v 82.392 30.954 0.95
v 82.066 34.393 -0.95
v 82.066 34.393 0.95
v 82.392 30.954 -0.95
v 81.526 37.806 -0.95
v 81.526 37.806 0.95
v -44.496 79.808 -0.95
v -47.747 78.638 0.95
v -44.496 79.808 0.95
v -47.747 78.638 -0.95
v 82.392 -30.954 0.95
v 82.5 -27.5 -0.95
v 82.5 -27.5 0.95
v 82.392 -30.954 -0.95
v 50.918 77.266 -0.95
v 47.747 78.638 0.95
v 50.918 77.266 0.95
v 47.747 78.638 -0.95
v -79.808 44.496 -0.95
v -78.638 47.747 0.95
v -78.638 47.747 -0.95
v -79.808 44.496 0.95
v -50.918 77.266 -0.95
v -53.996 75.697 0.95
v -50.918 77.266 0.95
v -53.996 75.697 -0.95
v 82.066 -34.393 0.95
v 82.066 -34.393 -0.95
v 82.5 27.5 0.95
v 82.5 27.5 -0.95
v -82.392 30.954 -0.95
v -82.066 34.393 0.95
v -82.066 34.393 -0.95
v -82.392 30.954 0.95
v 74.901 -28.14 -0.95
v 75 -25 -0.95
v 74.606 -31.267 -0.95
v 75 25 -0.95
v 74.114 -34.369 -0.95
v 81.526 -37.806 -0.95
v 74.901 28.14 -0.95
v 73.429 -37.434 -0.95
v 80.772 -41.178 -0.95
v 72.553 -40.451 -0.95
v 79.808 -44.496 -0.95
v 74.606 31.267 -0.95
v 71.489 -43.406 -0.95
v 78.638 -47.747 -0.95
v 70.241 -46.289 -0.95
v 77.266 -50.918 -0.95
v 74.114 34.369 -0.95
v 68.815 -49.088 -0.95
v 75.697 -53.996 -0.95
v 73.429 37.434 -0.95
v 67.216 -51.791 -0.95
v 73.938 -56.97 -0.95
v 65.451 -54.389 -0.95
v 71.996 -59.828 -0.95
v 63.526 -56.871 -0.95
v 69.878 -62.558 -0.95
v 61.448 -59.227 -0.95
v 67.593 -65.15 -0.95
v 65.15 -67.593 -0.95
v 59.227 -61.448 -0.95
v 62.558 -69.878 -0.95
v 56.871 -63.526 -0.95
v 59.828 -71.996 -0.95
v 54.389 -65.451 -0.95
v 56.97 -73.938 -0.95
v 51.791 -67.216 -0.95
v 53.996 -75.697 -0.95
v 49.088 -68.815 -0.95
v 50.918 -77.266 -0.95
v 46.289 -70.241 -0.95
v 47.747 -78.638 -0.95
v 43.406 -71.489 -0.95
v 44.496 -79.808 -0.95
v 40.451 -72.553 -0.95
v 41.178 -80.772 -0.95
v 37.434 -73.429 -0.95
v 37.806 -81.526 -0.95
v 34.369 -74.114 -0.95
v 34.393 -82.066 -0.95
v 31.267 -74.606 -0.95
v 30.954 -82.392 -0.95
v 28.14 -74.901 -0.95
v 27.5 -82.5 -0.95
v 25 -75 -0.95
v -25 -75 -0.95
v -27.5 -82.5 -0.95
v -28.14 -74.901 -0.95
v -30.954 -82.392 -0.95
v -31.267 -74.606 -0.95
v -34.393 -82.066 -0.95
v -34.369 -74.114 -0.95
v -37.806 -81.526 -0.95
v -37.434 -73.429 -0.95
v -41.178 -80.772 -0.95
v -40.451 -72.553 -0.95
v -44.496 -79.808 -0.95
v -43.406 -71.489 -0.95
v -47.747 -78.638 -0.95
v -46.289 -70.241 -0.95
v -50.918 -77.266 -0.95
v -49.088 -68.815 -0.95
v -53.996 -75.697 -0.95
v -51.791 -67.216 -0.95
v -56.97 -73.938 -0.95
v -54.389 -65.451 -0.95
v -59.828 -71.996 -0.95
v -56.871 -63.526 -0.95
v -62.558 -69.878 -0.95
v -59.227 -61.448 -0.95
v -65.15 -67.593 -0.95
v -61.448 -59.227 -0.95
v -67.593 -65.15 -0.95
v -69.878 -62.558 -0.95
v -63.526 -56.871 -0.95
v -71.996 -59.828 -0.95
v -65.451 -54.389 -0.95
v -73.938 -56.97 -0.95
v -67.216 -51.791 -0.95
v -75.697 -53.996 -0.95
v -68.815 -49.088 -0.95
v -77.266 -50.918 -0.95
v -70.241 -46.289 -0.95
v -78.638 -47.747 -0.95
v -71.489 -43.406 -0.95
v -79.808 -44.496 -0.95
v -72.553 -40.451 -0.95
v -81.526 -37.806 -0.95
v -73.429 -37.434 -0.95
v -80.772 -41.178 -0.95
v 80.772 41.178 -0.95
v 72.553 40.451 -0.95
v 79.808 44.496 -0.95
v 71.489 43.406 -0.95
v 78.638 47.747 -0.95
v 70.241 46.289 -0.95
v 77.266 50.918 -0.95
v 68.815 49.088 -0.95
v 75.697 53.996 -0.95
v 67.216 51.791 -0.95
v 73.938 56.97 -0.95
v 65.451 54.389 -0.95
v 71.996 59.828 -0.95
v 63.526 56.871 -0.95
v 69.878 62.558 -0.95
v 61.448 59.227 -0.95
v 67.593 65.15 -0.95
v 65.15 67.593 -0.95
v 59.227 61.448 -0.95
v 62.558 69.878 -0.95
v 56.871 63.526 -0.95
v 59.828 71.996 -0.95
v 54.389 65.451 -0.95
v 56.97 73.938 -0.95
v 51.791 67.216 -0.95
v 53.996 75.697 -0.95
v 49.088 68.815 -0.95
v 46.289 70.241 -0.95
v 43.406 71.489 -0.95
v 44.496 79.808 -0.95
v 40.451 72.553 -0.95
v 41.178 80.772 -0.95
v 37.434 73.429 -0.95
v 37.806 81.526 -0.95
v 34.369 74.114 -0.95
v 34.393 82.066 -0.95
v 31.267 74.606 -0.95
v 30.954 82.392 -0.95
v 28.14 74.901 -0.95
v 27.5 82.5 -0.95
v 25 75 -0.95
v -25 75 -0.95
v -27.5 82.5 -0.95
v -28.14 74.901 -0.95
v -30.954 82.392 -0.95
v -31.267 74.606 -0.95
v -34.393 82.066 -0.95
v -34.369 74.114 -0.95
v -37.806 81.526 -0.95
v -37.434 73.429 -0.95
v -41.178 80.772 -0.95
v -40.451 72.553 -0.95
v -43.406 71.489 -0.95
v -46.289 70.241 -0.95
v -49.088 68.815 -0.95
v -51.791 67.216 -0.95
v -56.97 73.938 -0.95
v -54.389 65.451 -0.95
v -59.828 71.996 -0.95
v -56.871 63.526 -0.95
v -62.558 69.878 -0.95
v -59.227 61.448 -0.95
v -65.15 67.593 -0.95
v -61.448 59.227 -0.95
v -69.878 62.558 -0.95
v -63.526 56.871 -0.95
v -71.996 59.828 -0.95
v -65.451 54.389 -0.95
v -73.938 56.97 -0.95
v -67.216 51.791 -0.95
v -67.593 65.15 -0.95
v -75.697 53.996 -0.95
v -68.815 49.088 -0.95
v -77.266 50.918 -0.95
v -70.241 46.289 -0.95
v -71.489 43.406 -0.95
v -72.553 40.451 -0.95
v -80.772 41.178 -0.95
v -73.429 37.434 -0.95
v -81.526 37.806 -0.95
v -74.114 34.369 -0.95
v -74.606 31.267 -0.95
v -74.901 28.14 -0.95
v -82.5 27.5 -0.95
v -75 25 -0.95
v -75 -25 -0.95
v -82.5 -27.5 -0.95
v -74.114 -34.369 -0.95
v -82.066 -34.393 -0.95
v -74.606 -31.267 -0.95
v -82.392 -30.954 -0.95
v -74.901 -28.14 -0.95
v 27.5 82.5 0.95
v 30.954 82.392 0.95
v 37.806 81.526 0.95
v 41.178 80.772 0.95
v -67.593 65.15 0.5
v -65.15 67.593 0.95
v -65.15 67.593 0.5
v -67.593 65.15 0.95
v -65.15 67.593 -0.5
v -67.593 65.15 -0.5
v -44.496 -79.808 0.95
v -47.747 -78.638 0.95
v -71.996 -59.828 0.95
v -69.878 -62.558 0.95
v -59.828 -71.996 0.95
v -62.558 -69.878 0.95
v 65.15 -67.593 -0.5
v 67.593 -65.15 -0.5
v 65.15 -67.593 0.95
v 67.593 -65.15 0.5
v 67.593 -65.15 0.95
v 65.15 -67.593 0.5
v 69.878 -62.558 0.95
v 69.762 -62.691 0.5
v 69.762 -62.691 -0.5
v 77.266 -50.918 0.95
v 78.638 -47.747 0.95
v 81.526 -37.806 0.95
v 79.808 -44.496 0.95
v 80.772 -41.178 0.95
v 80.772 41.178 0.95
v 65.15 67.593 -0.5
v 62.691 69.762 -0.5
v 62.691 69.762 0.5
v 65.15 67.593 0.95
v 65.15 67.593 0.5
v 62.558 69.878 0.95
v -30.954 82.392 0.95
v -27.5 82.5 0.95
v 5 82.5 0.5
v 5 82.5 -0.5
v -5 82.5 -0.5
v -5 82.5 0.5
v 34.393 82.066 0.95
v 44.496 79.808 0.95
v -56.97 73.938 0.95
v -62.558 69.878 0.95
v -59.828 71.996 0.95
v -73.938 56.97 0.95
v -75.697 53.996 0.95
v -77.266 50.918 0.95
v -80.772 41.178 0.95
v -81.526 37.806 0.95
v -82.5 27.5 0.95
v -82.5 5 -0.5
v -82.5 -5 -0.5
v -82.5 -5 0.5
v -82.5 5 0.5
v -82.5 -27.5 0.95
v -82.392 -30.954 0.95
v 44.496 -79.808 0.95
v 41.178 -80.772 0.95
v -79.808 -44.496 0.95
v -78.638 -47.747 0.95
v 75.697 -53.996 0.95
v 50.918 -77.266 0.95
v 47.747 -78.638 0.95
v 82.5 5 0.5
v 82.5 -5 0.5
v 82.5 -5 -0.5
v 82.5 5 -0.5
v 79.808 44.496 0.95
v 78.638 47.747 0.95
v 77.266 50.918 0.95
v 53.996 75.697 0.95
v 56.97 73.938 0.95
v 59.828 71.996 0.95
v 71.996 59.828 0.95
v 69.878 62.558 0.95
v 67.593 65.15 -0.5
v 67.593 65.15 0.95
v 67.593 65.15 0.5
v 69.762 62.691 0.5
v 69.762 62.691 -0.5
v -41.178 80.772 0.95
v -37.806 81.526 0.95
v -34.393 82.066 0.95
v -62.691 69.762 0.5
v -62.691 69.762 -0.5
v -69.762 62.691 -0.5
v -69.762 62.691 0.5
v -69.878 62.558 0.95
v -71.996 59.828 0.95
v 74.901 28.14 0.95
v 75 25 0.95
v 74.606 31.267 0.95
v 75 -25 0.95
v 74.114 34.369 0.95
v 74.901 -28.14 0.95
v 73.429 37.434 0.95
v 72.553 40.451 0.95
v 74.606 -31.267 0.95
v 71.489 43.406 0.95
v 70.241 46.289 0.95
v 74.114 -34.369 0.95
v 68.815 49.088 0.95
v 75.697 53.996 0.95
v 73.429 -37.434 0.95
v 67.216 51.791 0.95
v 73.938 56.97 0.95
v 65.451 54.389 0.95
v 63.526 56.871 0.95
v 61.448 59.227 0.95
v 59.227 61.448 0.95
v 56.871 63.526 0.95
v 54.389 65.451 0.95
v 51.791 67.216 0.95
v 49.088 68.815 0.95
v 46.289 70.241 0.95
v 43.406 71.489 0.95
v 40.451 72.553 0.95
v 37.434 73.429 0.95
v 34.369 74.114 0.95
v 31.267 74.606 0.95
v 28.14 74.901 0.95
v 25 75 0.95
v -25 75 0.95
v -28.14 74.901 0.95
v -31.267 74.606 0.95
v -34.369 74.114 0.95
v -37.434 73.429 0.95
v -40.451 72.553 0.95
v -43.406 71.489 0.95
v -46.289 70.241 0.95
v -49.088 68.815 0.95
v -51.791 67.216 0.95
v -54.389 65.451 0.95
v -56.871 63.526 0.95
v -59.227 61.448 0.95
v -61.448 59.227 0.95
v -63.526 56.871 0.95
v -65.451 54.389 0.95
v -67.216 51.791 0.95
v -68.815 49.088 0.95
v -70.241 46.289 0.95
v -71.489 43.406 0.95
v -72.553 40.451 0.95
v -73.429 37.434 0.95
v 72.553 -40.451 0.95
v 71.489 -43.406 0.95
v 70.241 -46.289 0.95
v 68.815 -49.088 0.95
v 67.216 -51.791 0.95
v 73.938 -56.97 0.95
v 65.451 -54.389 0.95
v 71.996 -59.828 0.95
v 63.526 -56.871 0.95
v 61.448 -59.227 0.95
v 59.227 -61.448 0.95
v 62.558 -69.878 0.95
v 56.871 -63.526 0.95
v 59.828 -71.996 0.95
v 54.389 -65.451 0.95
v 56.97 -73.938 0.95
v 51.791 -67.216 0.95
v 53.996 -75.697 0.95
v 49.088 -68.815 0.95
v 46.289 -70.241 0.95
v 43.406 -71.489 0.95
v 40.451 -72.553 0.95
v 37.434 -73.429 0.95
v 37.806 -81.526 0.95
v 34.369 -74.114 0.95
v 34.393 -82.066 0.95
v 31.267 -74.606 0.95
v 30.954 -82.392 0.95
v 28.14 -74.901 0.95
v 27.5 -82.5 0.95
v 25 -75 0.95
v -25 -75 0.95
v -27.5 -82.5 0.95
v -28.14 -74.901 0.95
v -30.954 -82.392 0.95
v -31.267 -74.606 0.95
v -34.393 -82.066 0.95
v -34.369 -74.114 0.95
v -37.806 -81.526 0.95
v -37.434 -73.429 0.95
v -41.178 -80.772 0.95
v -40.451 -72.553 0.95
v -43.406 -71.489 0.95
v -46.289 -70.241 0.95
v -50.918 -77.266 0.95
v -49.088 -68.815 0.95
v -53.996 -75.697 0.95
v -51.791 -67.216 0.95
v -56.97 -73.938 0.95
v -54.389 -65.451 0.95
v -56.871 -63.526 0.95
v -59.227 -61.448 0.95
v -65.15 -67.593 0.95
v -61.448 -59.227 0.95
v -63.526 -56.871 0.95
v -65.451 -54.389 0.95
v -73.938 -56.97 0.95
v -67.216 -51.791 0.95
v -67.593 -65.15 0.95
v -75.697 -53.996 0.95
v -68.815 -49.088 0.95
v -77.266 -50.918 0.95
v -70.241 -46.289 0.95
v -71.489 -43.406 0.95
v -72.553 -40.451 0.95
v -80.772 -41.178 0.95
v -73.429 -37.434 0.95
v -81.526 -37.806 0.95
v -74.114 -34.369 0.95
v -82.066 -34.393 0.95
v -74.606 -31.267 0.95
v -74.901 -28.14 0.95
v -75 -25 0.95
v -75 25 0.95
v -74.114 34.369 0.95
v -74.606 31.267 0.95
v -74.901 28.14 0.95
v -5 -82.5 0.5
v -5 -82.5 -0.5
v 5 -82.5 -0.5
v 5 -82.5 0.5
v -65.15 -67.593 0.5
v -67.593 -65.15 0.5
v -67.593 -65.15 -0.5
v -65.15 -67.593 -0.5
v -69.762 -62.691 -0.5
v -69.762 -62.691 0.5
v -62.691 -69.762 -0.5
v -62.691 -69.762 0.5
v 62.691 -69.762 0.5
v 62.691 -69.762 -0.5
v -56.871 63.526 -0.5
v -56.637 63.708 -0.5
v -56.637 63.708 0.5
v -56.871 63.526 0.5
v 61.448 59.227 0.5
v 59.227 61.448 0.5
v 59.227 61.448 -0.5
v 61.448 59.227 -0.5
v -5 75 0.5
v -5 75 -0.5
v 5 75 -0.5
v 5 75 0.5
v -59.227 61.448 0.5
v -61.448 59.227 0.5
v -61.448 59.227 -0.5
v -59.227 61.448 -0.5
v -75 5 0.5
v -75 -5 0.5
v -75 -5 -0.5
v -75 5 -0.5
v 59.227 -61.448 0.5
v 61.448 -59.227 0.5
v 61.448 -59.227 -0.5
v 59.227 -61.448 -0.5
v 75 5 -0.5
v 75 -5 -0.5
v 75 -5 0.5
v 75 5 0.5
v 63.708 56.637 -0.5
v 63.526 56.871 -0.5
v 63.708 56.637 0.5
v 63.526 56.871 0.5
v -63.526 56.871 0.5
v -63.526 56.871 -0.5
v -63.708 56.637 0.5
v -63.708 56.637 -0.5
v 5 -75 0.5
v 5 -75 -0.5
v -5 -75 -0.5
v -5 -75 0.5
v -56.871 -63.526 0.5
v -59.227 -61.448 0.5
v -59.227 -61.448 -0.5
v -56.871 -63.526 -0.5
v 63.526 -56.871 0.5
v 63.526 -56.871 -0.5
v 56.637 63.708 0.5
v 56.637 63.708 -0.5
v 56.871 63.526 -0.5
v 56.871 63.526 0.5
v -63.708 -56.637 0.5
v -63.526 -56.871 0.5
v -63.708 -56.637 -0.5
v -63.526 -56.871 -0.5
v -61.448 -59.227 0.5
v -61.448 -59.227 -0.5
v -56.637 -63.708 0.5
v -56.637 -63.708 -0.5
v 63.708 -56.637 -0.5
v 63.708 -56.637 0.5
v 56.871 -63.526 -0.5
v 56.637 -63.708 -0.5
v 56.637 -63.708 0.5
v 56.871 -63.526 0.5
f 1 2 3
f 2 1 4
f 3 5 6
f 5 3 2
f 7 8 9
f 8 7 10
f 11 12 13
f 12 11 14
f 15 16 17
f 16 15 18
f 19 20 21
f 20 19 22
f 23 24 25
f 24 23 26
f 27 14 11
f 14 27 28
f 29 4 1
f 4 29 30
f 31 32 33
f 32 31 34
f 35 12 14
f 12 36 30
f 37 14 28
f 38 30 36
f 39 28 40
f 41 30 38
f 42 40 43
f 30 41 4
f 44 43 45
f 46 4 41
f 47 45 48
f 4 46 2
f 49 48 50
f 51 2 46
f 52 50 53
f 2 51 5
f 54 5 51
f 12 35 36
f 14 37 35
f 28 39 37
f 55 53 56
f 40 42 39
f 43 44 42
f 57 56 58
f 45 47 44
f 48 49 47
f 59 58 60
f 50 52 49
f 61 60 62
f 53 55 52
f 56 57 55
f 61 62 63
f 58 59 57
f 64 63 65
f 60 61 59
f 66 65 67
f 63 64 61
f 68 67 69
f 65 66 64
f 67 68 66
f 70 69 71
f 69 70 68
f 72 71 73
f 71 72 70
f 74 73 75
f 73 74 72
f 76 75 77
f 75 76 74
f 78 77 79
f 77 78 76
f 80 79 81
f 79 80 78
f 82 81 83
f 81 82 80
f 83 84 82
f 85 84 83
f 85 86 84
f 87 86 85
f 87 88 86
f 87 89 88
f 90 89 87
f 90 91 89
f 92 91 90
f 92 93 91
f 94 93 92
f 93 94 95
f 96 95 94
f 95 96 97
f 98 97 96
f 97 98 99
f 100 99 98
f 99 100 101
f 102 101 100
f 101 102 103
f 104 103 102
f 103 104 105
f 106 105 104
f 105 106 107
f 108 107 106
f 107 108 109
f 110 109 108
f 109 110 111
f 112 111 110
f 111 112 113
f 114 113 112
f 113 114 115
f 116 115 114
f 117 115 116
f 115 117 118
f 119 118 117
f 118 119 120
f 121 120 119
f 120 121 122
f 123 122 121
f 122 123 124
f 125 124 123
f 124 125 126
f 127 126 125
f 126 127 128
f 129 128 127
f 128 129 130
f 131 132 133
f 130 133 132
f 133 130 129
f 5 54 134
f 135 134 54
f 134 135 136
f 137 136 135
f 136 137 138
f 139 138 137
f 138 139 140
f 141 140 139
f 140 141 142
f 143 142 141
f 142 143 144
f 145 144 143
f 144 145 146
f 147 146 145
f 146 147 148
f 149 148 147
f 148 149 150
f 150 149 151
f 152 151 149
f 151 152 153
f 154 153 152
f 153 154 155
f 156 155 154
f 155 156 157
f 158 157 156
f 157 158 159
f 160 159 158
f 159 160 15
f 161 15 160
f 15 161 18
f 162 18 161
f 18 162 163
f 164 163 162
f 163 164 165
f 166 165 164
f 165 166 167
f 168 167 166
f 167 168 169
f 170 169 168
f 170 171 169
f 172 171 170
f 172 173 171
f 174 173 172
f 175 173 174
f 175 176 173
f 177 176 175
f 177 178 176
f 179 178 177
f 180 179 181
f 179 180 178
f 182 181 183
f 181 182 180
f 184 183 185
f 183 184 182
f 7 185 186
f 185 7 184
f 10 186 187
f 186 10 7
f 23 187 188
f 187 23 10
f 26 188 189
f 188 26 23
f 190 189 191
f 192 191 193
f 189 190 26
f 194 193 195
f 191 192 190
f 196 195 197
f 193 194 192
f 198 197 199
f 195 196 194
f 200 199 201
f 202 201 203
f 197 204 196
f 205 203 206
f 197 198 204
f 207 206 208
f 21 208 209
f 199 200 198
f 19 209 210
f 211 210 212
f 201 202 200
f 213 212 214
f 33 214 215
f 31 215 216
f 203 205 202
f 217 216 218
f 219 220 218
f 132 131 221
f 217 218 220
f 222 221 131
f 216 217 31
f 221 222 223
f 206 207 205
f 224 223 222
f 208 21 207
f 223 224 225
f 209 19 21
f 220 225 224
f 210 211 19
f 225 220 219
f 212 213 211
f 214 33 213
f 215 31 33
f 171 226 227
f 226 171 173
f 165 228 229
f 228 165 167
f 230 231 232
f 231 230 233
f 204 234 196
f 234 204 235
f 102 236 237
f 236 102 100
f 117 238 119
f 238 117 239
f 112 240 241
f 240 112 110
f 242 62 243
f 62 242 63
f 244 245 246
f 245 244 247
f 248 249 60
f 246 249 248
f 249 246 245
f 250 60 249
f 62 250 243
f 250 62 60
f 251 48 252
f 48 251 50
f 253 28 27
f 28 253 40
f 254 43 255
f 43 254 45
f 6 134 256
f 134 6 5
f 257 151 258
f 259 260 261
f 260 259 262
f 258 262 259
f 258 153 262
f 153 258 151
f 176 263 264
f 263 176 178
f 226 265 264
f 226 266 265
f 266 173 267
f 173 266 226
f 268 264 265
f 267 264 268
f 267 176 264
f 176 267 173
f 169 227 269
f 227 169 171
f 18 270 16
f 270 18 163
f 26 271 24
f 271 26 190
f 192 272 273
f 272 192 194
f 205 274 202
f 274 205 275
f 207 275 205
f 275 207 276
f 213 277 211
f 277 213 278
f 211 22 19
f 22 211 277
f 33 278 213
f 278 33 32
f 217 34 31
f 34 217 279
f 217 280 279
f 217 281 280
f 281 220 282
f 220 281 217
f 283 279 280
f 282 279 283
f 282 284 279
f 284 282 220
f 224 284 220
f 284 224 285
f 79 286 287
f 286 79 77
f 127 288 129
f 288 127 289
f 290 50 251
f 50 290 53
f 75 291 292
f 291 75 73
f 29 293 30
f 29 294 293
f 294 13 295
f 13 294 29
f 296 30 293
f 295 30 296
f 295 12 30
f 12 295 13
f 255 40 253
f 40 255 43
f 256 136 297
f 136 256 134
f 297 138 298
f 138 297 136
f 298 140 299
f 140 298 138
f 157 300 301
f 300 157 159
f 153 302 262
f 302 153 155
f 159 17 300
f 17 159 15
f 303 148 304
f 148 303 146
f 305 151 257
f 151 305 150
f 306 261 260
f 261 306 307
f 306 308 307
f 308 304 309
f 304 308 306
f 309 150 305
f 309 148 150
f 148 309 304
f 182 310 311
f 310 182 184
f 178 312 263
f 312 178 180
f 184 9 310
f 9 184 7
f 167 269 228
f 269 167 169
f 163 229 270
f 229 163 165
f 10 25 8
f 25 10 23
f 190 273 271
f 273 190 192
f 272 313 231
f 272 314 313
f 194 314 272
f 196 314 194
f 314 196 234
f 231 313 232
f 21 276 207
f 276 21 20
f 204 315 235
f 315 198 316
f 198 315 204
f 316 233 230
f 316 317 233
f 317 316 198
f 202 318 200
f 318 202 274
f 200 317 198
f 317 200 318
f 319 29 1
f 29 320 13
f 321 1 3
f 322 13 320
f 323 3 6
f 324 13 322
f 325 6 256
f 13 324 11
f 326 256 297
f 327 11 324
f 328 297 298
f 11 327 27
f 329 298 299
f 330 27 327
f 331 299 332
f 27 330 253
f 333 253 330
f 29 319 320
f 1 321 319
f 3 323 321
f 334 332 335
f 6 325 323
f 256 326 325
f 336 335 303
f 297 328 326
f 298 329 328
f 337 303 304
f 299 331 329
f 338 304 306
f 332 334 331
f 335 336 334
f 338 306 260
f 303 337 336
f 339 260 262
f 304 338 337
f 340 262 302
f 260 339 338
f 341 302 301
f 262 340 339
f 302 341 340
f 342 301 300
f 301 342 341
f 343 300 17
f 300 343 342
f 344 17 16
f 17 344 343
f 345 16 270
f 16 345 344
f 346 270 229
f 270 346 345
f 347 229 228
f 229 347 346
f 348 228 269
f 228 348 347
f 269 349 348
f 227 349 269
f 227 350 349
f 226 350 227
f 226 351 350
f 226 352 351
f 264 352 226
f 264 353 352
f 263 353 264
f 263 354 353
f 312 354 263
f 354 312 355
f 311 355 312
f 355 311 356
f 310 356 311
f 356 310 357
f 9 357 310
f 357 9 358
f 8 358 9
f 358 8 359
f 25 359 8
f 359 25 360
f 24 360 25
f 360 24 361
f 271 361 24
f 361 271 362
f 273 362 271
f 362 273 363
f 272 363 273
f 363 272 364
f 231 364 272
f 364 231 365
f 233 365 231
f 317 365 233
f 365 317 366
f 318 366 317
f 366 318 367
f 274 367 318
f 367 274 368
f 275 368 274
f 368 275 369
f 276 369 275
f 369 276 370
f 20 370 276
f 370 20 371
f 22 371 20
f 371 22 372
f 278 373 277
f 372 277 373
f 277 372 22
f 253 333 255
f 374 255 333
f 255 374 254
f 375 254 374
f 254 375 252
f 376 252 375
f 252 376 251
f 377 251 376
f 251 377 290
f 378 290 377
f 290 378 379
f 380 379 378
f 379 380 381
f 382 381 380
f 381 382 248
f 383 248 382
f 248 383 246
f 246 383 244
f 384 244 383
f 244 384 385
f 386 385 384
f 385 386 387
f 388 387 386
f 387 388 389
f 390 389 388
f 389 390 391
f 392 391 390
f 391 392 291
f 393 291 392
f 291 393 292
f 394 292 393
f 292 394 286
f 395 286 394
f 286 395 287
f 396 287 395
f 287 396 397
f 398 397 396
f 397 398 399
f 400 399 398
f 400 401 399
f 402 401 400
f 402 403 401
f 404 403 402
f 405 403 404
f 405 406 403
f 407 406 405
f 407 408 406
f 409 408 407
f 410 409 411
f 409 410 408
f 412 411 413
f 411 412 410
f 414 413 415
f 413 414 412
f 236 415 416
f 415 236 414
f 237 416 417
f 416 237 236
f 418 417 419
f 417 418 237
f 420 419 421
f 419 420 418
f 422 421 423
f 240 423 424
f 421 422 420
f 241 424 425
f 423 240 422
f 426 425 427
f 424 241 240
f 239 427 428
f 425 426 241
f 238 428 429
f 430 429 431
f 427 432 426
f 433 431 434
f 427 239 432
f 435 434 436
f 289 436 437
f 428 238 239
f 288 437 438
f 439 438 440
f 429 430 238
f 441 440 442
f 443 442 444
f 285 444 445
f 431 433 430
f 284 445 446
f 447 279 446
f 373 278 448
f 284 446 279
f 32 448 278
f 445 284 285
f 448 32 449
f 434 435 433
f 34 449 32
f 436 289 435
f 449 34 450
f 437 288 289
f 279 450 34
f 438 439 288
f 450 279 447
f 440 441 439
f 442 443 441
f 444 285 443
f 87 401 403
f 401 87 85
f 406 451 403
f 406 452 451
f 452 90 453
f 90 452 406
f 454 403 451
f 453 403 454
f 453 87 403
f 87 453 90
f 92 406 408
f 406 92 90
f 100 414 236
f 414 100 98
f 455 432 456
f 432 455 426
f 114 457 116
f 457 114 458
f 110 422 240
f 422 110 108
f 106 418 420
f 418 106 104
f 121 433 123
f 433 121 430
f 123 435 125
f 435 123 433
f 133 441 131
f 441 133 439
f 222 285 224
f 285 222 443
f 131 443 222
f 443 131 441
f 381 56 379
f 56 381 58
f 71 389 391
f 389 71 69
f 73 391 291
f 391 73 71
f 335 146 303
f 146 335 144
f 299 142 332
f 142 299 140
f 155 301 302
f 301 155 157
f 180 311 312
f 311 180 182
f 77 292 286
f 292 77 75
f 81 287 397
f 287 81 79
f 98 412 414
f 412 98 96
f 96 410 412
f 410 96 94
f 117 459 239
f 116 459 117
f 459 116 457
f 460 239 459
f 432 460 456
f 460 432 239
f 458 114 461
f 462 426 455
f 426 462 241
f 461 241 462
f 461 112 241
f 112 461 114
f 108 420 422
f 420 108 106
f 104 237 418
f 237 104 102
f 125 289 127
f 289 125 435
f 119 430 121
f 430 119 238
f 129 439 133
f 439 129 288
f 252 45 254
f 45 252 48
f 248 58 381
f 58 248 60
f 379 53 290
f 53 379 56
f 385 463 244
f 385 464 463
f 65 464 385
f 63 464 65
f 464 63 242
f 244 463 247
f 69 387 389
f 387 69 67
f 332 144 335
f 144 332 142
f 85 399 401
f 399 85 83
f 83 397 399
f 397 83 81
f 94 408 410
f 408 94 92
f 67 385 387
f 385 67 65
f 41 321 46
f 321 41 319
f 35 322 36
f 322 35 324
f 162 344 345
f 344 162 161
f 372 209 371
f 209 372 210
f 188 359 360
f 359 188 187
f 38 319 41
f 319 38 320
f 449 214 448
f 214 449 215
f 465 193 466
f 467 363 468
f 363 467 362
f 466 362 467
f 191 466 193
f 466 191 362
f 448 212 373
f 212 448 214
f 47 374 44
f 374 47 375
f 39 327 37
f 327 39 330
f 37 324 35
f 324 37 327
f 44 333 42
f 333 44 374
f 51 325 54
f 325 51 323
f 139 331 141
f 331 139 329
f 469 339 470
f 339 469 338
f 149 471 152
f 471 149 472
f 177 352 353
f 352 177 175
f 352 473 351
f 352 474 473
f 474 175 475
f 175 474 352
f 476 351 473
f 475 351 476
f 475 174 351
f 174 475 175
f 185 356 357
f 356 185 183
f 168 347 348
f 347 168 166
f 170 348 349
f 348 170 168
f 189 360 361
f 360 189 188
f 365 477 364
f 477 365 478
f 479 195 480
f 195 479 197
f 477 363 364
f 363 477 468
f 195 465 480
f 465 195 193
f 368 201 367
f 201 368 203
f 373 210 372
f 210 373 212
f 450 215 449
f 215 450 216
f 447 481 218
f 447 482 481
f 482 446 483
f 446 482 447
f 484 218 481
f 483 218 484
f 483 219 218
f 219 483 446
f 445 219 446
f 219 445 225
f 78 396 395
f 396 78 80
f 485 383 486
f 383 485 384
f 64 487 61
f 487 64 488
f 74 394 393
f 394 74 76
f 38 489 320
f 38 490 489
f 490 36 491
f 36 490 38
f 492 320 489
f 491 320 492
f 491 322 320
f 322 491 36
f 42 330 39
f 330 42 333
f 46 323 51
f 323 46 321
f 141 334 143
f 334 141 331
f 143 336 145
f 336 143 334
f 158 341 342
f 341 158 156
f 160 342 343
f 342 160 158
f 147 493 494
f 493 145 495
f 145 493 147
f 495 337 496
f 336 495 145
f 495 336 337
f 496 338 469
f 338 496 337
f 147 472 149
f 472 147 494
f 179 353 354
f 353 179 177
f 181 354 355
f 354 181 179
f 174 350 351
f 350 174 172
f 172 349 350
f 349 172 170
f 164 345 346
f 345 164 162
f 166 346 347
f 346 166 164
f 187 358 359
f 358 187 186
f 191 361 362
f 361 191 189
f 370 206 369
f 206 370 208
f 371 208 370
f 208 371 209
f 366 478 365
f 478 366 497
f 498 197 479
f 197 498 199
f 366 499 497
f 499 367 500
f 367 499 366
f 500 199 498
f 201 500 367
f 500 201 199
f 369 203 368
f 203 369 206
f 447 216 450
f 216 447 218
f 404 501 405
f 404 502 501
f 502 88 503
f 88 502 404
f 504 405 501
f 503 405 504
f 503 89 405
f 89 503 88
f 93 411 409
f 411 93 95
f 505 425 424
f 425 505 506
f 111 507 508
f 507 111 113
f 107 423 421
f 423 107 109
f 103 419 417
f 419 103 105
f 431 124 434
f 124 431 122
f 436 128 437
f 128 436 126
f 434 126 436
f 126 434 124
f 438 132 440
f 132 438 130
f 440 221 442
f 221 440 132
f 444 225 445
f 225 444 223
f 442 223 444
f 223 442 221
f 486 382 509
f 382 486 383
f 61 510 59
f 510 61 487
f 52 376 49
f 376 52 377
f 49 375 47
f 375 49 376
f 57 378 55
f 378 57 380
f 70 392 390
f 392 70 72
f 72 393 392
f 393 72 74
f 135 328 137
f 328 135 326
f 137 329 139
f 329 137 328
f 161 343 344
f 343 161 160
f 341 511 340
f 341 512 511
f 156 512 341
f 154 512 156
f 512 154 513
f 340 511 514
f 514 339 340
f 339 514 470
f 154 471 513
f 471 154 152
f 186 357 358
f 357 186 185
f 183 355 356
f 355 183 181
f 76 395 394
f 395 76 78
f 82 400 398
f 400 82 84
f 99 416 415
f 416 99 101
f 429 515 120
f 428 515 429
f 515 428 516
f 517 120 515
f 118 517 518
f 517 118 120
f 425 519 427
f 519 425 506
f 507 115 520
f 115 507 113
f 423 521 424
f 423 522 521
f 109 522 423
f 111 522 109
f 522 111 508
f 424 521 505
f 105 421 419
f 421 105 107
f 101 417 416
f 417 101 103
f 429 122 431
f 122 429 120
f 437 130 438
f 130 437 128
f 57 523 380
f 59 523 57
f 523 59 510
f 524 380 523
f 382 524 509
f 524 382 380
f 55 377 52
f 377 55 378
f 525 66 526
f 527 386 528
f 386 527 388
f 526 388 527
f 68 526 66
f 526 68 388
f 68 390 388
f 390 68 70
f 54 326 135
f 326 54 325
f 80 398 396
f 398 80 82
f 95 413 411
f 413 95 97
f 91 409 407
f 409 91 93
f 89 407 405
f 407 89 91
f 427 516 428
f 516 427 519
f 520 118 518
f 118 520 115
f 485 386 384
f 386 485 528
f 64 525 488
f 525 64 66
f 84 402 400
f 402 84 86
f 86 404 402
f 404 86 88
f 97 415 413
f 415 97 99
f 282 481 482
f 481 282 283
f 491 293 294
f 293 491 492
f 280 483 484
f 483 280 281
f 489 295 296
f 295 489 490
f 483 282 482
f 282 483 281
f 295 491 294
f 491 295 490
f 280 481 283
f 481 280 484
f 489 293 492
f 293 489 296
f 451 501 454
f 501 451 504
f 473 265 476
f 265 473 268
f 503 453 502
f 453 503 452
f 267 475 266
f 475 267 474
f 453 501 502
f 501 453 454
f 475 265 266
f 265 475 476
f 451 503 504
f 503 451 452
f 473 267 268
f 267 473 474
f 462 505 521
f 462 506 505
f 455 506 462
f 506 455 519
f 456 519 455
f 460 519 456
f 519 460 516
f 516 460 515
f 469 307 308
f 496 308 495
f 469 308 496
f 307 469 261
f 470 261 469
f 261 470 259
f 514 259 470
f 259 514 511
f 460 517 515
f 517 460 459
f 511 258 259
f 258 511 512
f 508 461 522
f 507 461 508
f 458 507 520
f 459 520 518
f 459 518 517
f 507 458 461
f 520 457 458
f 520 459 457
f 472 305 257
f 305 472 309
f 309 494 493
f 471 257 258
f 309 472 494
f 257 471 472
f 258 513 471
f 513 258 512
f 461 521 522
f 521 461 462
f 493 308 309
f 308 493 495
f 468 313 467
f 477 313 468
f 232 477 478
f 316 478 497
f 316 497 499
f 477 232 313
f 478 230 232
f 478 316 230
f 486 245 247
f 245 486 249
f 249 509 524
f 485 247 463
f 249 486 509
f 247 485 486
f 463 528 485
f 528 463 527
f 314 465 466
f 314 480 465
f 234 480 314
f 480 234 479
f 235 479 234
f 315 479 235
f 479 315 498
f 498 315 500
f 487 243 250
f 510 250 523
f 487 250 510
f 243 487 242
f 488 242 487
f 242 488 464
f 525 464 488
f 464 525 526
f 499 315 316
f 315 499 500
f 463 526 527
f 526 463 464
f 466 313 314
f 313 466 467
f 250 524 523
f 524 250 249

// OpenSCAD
$fn=100;
Bheight=0.7;
fs=48/2;

// Camera footprint is 7x15
camX=7;
camY=15;
camAngle=10;


// For printing
//translate([fs,fs,0])rotate([0,0,-45]){p_guard_duct();}
//translate([-fs,-fs,0])rotate([0,0,135]){p_guard_duct();}
//translate([-fs,fs,0])rotate([0,0,45]){p_guard_duct();}
//translate([fs,-fs,0])rotate([0,0,-135]){p_guard_duct();}



//translate([fs,fs,0])rotate([0,0,-45]){p_guard_duct();prop();}
//translate([-fs,-fs,0])rotate([0,0,135]){p_guard_duct();prop();}
//translate([-fs,fs,0])rotate([0,0,45]){p_guard_duct();prop();}
//translate([fs,-fs,0])rotate([0,0,-135]){p_guard_duct();prop();}


//translate([0,0,-5])cube([43,17,6],center=true); // Battery

/*
rotate([0,0,45])esc();
rotate([0,0,-45])esc();
rotate([0,0,135])esc();
rotate([0,0,-135])esc();

translate([0,0,2.2])color("PURPLE")cube([11.3,11.3,2.5],center=true);    // FC

frame();


translate([0,0,1])cameramount(5);
*/

//translate([0,0,1])cameramount(6.5);
/*
translate([15,-30,0])rotate([0,0,45]){
frame();
translate([45,24,0])frame();
translate([-24,45,0])frame();
translate([21,69,0])frame();
}
*/
frm_hght=1.9;
difference(){
    hull(){
    translate([55/2,55/2,0])cylinder(d=110,h=frm_hght,center=true);
    translate([-55/2,55/2,0])cylinder(d=110,h=frm_hght,center=true);
    translate([55/2,-55/2,0])cylinder(d=110,h=frm_hght,center=true);
    translate([-55/2,-55/2,0])cylinder(d=110,h=frm_hght,center=true);
    }
    hull(){
    translate([50/2,50/2,0])cylinder(d=100,h=frm_hght+1,center=true);
    translate([-50/2,50/2,0])cylinder(d=100,h=frm_hght+1,center=true);
    translate([50/2,-50/2,0])cylinder(d=100,h=frm_hght+1,center=true);
    translate([-50/2,-50/2,0])cylinder(d=100,h=frm_hght+1,center=true);
    }
    
    cube([250,10,1], center=true);
    rotate([0,0,90])cube([250,10,1], center=true);
    rotate([0,0,45])cube([250,10,1], center=true);
    rotate([0,0,-45])cube([250,10,1], center=true);



}
//translate([1.3,0,13])rotate([0,camAngle,0])cube([7,15,15],center=true); // Cam

//p_guard_duct();

module p_guard(){
    color("CYAN")difference(){
        union(){
            pguardmount();
            difference(){
                bamper(0,Bheight,1.7);
                bamper(3,Bheight+0.2,1.7);
            }

            translate([0,0,Bheight])difference(){
                bamper(0,Bheight*2.5,1);
                bamper(1.2,Bheight*2.5+0.2,1);
                cylinder(d=10, h=Bheight*5, center=true);
                rotate([3,0,0])translate([0,0,Bheight])cube([50,50,2], center=true);

            }

            scale([1.08,1,1])translate([-3.25, 1.4, 0])bamperSmoothJoint();
            scale([1.08,1,1])translate([3.25, 1.4, 0])bamperSmoothJoint();

        }
        translate([0,5.5/2,0])cylinder(d=1.7,h=Bheight+0.2, center=true);
        rotate([0,0,120])translate([0,5.5/2,0])cylinder(d=1.7,h=Bheight+0.2, center=true);
        rotate([0,0,-120])translate([0,5.5/2,0])cylinder(d=1.7,h=Bheight+0.2, center=true);    
    }
}

module p_guard_duct(){
    color("CYAN")difference(){
        union(){
            //fillet(r=4,steps=4){
                pguardmount();
                difference(){
                    bamper(-1.5,Bheight,1);
                    bamper(0,Bheight+0.2,4);
                }
            //}
            translate([0,0,Bheight*5])difference(){
                bamper(-0.8,Bheight*10,1);
                bamper(0,Bheight*10+0.2,1);
                cylinder(d=11, h=Bheight*20, center=true);
                rotate([13,0,0])translate([0,0,7])cube([40,25,20], center=true);
            }

        }
        translate([0,5.5/2,0])cylinder(d=1.7,h=Bheight+0.2, center=true);
        rotate([0,0,120])translate([0,5.5/2,0])cylinder(d=1.7,h=Bheight+0.2, center=true);
        rotate([0,0,-120])translate([0,5.5/2,0])cylinder(d=1.7,h=Bheight+0.2, center=true);    
        
        translate([0,12,5.75])rotate([0,90,0])hull(){
            cylinder(d=5,h=50, center=true);
            translate([-10,2,0])cylinder(d=5,h=50, center=true);
        }
        
        reduceweighthole();
        rotate([0,0,27])reduceweighthole();
        rotate([0,0,-27])reduceweighthole();

    }
}

module bamper(adj, hght, cant){
    hull(){
        cylinder(d=9.3-adj-cant,h=hght, center=true);
        rotate([0,0,45])translate([0,40/2,0])cylinder(d=5-adj,h=hght, center=true);
        rotate([0,0,-45])translate([0,40/2,0])cylinder(d=5-adj,h=hght, center=true);
    }
    intersection(){
        cylinder(d=40+5-adj,h=hght, center=true);
        rotate([0,0,45])translate([0,0,-hght])cube([50,50,hght*2]);
    }
}

module bamperSmoothJoint(){
    difference(){
        cube([4,2.4,Bheight], center=true);
        translate([0,1.8,0])cylinder(d=3.3,h=Bheight*1.5, center=true);
        
    }
}

module prop(){
    color("WHITE")translate([0,0,9])cylinder(d=40,h=0.1, center=true);
}

module frame(){
    color("DARKGRAY"){
        cube([17,17,2],center=true);    // FRAME
        rotate([0,0,45])cube([65,6,2],center=true);    // FRAME
        rotate([0,0,-45])cube([65,6,2],center=true);    // FRAME

        translate([fs,fs,0])rotate([0,0,-45]){cylinder(d=9,h=2, center=true);}
        translate([-fs,-fs,0])rotate([0,0,135]){cylinder(d=9,h=2, center=true);}
        translate([-fs,fs,0])rotate([0,0,45]){cylinder(d=9,h=2, center=true);}
        translate([fs,-fs,0])rotate([0,0,-135]){cylinder(d=9,h=2, center=true);}
    }
}


module esc(){
    translate([0,18,2])color("PURPLE")cube([6.5,11,2], center=true);
}


module cameramount(height){
    translate([0,0,height])rotate([0,camAngle,0])difference(){
        cube([camX+1.7,camY+1.7, 2], center=true);
        translate([0,0,0.4])cube([camX+0.1,camY+0.1, 2], center=true);
        cube([camX-3,camY+0.1, 5], center=true);
    }
    
    
    translate([-camX/2+0.25,camY/2-0.35,0])rotate([0,0,-90])cameramountstand(height-0.2,90);

    translate([camX/2-0.25,camY/2-0.35,0])rotate([0,0,180])cameramountstand(height,0);

    translate([camX/2-0.25,-camY/2+0.35,0])rotate([0,0,90])cameramountstand(height,90);

    translate([-camX/2-3.7,-camY/2+0.35,0])rotate([0,0,0])cameramountstand(height,-90);
    
    translate([-camX/2,camY/2+0.05,height-1.5])cube([7,0.8,1.5]);

    translate([-camX/2-4.9,-camY/2-0.85,height-1.5])cube([12,0.8,1.5]);

    translate([-camX/2-4.9,-camY/2-0.85,height-0.1])cube([4.5,2.4,0.8]);
    
    translate([camX/2+0.55,-camY/2+2.3,height-2.9])triangleReinforcement();
    translate([camX/2+0.55,camY/2-2.3,height-2.9])rotate([0,0,180])triangleReinforcement();

    translate([0,camY/2-0.35,0.2])rotate([0,0,180])cube([7,2.4,0.4],center=true);

    //translate([-camX/2-0.55,camY/2-2.3,height-1.47])rotate([0,0,180])triangleReinforcement();
    translate([-camX/2+1.05,camY/2-1,height-1.6])rotate([0,0,180])triangleReinforcement();
    translate([-camX/2+0.96,-camY/2+0.5,height-0.81])scale([1,0.45,0.45])triangleReinforcement();

    translate([-camX/2-3,-camY/2+1.15,height-1])rotate([0,0,-90])triangleReinforcement();

    translate([-camX/2-1.5,-camY/2-0.45,height-1.7])rotate([0,0,-90])triangleReinforcement();
    translate([camX/2-2.5,-camY/2-0.45,height-2])rotate([0,0,90])triangleReinforcement();

    translate([-camX/2+2.5,camY/2+0.45,height-2])rotate([0,0,-90])triangleReinforcement();
    translate([camX/2-2.5,camY/2+0.45,height-2])rotate([0,0,90])triangleReinforcement();


}



module cameramountstand(hg,mrot){
    //hg is height
    // mrot is rotation of mount hole 0 or 90

    translate([-2.4/2,-2.4/2,0]){
        difference(){
            cube([2.4,2.4,hg]);
            translate([0.8,0.8,-0.5])cube([2.4,2.4,hg+1]);
        }
    }
    
        rotate([0,0,mrot])translate([-2.8,0,0])difference(){
            union(){
                cylinder(d=2.8,h=0.6);
                translate([0,-2.4/2,0])cube([4,2.4,0.6]);
            }
            cylinder(d=1,h=3,center=true);
        }

}


module pguardmount(){
    hull(){
        cylinder(d=1.7+2,h=Bheight, center=true);
        translate([0,5.5/2,0])cylinder(d=1.7+2,h=Bheight, center=true);
    }
    hull(){
        cylinder(d=1.7+2,h=Bheight, center=true);
        rotate([0,0,120])translate([0,5.5/2,0])cylinder(d=1.7+2,h=Bheight, center=true);
    }
    hull(){
        cylinder(d=1.7+2,h=Bheight, center=true);
        rotate([0,0,-120])translate([0,5.5/2,0])cylinder(d=1.7+2,h=Bheight, center=true);
    }
    cylinder(d=7.5,h=Bheight, center=true);
    
    pguardmountjoint();
    mirror([1,0,0])pguardmountjoint();

}

module pguardmountjoint(){
    hull(){
        translate([2,0,0])cylinder(d=4,h=Bheight, center=true);
        translate([10,5,0])cylinder(d=1,h=Bheight, center=true);
    }
}


module reduceweighthole(){
    rotate([90,0,0])hull(){
        translate([2,3,-15])cylinder(d=3,h=30, center=true);
        translate([-2,3,-15])cylinder(d=3,h=30, center=true);
    }
    
}

module triangleReinforcement(){
    rotate([0,90,0])difference(){
        cube([2.5,2.5,0.8], center=true);
        translate([5,2,0])rotate([0,0,45])cube([10,10,1], center=true);
    }
}

/*
// Fillet function

module fillet(r=1.0,steps=3,include=true) {
  if(include) for (k=[0:$children-1]) {
	children(k);
  }
  for (i=[0:$children-2] ) {
    for(j=[i+1:$children-1] ) {
	fillet_two(r=r,steps=steps) {
	  children(i);
	  children(j);
	  intersection() {
		children(i);
		children(j);
	  }
	}
    }
  }
}

module fillet_two(r=1.0,steps=3) {
  for(step=[1:steps]) {
	hull() {
	  render() intersection() {
		children(0);
		offset_3d(r=r*step/steps) children(2);
	  }
	  render() intersection() {
		children(1);
		offset_3d(r=r*(steps-step+1)/steps) children(2);
	  }
	}
  }
}

module offset_3d(r=1.0) {
  for(k=[0:$children-1]) minkowski() {
	children(k);
	sphere(r=r,$fn=8);
  }
}

*/
